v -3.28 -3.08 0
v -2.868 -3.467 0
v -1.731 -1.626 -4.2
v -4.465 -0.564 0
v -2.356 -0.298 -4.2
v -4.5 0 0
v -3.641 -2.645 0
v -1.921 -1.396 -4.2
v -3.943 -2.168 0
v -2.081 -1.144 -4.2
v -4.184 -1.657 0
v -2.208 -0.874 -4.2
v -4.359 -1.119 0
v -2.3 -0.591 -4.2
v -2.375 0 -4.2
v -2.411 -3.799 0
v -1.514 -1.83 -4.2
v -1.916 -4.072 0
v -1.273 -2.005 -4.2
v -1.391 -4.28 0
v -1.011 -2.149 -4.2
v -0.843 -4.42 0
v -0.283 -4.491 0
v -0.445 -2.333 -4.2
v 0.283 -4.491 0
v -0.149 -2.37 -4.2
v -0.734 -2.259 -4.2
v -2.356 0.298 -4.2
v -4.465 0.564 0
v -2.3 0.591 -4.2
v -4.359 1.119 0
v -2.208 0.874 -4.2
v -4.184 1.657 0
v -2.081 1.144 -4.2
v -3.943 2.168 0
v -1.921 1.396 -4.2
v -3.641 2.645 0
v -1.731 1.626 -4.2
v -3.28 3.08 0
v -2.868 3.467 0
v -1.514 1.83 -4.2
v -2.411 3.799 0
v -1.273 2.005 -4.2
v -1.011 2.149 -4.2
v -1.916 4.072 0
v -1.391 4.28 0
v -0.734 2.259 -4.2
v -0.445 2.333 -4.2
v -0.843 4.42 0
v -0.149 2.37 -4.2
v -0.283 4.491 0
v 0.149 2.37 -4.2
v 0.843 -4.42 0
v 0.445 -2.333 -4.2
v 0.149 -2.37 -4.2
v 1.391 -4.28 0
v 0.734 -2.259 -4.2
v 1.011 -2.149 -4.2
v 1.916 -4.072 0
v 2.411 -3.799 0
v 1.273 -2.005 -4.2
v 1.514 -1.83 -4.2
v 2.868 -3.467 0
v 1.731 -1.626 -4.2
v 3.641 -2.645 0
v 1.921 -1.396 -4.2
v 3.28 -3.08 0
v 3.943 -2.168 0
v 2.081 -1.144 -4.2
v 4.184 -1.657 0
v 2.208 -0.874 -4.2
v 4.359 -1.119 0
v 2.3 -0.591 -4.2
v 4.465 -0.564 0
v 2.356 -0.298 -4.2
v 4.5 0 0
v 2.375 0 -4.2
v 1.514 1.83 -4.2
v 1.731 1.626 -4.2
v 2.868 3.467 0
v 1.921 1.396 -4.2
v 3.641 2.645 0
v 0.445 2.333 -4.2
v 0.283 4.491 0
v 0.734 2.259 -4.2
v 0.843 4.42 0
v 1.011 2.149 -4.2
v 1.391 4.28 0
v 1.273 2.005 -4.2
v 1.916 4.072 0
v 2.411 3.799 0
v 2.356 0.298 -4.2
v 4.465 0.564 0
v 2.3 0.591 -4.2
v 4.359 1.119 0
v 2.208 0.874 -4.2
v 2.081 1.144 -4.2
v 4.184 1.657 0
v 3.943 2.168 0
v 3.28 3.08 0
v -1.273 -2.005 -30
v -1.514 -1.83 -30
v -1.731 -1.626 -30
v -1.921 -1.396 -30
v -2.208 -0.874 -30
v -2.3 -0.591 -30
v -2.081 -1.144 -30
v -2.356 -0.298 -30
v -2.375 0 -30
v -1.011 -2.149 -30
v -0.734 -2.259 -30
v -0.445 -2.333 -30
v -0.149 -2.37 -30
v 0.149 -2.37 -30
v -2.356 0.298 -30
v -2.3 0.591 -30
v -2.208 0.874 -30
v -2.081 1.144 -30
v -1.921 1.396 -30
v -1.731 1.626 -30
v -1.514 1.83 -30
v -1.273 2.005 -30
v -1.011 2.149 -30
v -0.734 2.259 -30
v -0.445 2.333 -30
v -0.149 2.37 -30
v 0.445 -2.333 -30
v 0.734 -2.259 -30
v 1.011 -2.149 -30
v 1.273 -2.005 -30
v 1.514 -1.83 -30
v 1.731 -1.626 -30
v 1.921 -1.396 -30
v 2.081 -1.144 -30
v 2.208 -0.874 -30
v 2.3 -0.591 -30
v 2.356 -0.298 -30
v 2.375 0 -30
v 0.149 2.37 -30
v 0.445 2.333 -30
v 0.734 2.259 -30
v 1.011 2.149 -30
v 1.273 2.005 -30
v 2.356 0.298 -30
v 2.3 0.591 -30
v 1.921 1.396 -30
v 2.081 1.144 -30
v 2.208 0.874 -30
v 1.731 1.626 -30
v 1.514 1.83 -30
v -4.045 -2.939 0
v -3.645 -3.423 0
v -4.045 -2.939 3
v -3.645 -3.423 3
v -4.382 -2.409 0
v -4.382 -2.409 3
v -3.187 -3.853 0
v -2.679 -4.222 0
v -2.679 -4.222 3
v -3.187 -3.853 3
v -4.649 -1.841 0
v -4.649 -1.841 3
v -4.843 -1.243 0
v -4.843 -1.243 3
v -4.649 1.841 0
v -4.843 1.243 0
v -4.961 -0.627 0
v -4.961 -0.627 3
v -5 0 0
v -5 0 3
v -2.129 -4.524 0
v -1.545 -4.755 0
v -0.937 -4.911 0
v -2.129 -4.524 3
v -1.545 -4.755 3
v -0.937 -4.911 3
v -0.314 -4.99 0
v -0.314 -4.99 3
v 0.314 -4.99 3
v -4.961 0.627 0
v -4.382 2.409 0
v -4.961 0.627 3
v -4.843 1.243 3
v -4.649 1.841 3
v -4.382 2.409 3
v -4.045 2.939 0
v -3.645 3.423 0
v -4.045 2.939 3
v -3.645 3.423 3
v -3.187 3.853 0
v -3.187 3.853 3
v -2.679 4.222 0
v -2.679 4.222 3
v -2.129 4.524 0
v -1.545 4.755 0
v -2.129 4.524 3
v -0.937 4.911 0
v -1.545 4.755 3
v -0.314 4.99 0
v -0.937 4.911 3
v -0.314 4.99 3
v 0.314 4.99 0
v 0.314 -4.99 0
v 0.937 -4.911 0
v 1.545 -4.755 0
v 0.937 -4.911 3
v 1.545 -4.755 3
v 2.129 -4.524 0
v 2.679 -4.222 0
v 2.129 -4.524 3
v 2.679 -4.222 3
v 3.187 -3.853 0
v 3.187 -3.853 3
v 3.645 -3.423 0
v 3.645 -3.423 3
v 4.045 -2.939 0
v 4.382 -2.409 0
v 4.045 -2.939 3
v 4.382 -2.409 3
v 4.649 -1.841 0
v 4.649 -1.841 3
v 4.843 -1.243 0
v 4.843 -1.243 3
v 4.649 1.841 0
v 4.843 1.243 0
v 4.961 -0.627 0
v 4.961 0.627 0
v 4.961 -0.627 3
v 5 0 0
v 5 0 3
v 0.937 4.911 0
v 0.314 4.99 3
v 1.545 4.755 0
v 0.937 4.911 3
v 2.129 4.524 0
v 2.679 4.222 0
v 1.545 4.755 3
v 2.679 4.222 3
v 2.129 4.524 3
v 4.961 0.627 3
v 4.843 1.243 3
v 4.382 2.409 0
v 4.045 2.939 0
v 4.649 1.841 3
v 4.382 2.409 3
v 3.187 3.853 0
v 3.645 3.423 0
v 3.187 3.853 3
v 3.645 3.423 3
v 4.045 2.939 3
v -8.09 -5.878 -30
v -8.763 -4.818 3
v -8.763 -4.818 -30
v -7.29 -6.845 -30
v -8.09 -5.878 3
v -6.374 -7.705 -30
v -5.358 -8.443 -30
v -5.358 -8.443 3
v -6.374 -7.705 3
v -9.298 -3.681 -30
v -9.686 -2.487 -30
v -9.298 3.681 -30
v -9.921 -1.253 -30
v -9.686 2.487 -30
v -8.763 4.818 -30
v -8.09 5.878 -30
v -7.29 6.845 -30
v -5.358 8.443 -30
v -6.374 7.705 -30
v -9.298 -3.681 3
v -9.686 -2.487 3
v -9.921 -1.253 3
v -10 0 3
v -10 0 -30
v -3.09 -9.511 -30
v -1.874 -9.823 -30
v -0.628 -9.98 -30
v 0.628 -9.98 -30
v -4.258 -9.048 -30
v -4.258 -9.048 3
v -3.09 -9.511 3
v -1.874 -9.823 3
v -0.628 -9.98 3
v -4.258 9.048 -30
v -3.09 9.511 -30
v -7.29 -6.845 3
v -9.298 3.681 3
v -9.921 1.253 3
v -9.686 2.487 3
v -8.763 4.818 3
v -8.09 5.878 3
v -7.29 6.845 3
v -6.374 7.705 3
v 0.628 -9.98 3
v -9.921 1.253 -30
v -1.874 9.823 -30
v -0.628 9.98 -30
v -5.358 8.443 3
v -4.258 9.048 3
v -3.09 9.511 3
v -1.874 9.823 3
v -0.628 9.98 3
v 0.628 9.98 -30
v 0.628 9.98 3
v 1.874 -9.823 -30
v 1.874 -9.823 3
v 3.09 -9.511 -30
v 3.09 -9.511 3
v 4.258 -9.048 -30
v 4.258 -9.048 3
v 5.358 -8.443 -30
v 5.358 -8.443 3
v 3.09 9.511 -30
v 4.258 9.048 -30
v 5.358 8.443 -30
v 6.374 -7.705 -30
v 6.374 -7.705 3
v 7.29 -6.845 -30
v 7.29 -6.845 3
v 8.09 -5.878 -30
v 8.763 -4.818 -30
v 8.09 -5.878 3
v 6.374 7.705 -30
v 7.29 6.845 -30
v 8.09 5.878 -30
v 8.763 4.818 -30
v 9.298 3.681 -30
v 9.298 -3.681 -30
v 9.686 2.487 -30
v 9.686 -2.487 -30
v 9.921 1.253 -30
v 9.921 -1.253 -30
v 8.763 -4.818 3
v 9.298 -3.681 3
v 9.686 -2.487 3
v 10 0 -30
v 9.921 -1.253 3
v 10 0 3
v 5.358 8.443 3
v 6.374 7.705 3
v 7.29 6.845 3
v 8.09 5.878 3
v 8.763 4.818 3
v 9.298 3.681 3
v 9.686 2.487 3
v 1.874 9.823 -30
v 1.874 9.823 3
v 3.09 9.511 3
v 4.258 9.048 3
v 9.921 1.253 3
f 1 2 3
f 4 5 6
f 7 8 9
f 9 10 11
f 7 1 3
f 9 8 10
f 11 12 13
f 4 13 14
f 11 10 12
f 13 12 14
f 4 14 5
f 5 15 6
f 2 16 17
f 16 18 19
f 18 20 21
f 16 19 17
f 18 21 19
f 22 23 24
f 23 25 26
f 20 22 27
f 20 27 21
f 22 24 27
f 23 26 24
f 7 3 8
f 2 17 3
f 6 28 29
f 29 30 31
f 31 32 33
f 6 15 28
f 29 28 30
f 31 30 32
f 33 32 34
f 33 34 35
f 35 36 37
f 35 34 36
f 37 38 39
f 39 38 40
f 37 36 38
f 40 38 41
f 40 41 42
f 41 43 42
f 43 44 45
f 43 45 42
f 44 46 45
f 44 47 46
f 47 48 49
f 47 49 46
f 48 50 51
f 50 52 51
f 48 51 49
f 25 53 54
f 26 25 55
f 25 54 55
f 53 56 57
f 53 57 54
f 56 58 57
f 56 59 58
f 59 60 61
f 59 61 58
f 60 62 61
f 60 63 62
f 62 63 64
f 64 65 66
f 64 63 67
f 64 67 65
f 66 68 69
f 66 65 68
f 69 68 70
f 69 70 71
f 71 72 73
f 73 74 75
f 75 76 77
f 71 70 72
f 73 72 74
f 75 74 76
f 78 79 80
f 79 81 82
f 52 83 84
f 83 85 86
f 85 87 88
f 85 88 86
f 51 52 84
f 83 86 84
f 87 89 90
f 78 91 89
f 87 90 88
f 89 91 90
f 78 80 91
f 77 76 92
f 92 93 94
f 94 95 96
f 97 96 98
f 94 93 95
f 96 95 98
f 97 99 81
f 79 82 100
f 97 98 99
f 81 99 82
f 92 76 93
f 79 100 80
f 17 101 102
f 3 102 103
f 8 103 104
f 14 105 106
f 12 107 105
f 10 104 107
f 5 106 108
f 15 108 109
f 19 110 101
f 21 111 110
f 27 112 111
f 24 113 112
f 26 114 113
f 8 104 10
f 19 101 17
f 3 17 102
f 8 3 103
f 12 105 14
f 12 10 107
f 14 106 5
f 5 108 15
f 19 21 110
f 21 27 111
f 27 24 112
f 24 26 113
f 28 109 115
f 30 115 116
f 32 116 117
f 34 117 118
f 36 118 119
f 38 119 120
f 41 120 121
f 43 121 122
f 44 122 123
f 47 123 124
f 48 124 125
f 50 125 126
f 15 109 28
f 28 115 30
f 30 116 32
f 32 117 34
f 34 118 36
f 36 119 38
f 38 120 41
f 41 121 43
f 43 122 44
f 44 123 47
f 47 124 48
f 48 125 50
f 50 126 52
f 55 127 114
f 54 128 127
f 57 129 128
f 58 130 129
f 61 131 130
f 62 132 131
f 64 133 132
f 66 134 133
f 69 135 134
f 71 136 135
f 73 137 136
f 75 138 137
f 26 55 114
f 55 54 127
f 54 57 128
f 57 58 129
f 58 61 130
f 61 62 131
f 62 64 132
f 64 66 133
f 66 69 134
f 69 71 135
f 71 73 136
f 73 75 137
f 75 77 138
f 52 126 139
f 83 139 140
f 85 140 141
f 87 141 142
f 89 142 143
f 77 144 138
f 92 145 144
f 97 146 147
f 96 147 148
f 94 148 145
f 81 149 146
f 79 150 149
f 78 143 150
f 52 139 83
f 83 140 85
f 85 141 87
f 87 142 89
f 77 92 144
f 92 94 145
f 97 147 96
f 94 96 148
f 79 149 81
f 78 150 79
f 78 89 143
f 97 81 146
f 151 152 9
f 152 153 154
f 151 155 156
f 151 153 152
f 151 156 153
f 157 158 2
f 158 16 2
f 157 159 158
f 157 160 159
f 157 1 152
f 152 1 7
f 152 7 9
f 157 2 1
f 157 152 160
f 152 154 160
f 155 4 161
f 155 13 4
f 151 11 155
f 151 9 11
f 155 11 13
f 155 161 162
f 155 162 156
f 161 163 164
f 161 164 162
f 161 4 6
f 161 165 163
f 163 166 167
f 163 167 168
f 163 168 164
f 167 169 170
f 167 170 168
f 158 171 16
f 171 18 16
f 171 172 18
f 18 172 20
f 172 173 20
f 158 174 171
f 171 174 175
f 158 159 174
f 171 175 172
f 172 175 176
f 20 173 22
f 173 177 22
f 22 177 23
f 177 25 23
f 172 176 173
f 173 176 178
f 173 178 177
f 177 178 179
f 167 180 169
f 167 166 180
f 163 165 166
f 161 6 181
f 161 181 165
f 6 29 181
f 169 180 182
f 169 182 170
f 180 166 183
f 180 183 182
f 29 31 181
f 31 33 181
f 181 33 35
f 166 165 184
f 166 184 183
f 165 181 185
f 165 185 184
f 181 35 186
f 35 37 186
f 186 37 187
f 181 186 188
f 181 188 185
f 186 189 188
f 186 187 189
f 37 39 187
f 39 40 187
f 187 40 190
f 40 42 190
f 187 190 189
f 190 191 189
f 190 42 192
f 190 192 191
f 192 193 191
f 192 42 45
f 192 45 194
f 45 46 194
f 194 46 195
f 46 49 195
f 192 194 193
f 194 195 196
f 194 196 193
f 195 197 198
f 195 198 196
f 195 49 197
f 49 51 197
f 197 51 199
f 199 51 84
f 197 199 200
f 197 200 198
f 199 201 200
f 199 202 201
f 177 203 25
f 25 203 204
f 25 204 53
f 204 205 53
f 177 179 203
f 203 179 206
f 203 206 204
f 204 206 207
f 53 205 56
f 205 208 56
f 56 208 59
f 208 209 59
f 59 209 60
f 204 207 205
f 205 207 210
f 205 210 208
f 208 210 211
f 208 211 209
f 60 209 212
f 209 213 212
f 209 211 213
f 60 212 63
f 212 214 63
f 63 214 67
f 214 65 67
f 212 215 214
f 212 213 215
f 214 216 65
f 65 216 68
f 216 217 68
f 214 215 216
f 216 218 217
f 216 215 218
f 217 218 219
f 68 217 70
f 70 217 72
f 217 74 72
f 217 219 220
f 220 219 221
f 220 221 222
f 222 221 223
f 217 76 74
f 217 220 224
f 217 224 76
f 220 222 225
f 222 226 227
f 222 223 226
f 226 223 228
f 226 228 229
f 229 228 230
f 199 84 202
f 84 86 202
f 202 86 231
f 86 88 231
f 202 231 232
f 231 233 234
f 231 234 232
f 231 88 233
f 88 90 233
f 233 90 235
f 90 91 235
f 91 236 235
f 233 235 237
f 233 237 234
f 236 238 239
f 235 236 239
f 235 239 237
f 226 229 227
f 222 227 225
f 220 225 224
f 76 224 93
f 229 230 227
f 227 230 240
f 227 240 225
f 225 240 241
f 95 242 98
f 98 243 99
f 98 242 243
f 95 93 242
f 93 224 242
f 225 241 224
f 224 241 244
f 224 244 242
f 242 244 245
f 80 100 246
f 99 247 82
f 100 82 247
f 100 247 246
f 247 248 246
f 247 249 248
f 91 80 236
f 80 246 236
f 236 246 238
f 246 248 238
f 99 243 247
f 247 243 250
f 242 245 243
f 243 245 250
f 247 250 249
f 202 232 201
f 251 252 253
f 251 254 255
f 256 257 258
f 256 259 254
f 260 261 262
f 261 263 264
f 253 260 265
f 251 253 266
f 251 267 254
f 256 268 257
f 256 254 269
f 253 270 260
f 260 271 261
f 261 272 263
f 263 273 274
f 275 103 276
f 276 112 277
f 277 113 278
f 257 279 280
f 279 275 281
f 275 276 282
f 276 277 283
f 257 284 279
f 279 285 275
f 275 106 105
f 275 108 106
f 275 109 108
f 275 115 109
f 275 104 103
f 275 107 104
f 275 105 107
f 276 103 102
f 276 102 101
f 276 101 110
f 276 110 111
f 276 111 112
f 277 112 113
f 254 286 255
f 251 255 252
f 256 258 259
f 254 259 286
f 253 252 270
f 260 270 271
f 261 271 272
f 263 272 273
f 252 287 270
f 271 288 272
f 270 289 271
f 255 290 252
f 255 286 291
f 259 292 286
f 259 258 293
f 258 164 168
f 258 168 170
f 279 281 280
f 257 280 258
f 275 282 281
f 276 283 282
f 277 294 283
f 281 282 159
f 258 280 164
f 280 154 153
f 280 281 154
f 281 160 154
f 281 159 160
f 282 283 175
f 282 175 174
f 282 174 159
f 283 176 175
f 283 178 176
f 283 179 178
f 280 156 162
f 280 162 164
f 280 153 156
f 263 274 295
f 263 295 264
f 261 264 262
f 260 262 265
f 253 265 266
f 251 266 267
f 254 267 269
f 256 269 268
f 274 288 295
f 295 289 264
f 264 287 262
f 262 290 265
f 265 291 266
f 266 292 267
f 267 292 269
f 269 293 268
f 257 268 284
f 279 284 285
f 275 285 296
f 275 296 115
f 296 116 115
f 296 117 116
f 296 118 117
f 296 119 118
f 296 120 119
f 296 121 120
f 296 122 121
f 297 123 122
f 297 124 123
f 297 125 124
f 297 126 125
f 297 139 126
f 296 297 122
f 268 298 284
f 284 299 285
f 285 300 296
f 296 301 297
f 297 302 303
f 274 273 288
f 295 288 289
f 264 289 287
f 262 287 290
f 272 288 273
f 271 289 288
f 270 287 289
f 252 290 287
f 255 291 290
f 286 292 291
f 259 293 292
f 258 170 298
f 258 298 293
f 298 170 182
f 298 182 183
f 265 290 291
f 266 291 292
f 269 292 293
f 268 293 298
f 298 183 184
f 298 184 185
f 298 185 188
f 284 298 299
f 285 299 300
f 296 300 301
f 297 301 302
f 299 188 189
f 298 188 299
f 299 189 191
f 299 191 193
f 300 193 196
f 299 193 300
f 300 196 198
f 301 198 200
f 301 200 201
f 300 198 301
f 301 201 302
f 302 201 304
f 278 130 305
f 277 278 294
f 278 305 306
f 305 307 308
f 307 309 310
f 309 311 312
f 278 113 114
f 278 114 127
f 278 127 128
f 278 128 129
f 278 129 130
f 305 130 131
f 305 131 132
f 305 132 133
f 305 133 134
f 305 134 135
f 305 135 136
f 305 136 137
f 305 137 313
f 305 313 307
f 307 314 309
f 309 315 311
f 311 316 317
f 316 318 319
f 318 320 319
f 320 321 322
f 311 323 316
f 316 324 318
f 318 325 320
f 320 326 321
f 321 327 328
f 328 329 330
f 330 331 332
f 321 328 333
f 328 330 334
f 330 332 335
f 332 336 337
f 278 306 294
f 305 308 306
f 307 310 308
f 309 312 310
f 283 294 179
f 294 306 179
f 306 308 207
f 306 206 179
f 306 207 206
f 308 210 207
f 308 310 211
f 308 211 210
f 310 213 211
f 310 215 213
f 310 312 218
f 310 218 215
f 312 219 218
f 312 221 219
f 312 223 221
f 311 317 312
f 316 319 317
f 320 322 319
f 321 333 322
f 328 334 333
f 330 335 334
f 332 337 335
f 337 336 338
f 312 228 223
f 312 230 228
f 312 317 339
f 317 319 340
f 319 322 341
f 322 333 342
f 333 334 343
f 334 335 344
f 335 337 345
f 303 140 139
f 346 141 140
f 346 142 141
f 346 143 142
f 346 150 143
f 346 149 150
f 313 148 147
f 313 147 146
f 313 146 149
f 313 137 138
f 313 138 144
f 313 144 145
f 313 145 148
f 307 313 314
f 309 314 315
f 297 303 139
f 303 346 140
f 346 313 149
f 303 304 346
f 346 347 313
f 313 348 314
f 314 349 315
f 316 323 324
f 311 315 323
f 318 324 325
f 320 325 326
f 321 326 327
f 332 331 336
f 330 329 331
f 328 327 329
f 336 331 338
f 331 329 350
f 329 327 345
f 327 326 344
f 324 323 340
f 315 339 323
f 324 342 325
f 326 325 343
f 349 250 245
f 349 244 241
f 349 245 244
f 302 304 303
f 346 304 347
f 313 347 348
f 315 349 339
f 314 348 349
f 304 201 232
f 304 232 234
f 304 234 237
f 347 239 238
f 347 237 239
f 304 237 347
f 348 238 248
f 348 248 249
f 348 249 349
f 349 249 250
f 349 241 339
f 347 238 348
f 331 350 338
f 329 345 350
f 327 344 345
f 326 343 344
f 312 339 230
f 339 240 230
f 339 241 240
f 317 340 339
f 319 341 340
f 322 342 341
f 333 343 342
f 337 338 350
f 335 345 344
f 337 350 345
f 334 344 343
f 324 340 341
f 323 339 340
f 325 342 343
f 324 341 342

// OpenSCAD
$fn = 50;

difference() {
	union() {
		translate(v = [0, 0, -30.0]) {
			cylinder(h = 33, r = 10.0);
		}
	}
	union() {
		translate(v = [0, 0, 0]) {
			rotate(a = [0, 0, 0]) {
				difference() {
					union() {
						translate(v = [0, 0, -33.0]) {
							cylinder(h = 33, r = 2.25);
						}
						translate(v = [0, 0, -4.2]) {
							cylinder(h = 4.2, r1 = 2.375, r2 = 4.5);
						}
						translate(v = [0, 0, -33.0]) {
							cylinder(h = 33, r = 2.375);
						}
						translate(v = [0, 0, -33.0]) {
							cylinder(h = 33, r = 2.25);
						}
					}
					union();
				}
			}
		}
		#cylinder(h = 3, r = 5.0);
	}
}
